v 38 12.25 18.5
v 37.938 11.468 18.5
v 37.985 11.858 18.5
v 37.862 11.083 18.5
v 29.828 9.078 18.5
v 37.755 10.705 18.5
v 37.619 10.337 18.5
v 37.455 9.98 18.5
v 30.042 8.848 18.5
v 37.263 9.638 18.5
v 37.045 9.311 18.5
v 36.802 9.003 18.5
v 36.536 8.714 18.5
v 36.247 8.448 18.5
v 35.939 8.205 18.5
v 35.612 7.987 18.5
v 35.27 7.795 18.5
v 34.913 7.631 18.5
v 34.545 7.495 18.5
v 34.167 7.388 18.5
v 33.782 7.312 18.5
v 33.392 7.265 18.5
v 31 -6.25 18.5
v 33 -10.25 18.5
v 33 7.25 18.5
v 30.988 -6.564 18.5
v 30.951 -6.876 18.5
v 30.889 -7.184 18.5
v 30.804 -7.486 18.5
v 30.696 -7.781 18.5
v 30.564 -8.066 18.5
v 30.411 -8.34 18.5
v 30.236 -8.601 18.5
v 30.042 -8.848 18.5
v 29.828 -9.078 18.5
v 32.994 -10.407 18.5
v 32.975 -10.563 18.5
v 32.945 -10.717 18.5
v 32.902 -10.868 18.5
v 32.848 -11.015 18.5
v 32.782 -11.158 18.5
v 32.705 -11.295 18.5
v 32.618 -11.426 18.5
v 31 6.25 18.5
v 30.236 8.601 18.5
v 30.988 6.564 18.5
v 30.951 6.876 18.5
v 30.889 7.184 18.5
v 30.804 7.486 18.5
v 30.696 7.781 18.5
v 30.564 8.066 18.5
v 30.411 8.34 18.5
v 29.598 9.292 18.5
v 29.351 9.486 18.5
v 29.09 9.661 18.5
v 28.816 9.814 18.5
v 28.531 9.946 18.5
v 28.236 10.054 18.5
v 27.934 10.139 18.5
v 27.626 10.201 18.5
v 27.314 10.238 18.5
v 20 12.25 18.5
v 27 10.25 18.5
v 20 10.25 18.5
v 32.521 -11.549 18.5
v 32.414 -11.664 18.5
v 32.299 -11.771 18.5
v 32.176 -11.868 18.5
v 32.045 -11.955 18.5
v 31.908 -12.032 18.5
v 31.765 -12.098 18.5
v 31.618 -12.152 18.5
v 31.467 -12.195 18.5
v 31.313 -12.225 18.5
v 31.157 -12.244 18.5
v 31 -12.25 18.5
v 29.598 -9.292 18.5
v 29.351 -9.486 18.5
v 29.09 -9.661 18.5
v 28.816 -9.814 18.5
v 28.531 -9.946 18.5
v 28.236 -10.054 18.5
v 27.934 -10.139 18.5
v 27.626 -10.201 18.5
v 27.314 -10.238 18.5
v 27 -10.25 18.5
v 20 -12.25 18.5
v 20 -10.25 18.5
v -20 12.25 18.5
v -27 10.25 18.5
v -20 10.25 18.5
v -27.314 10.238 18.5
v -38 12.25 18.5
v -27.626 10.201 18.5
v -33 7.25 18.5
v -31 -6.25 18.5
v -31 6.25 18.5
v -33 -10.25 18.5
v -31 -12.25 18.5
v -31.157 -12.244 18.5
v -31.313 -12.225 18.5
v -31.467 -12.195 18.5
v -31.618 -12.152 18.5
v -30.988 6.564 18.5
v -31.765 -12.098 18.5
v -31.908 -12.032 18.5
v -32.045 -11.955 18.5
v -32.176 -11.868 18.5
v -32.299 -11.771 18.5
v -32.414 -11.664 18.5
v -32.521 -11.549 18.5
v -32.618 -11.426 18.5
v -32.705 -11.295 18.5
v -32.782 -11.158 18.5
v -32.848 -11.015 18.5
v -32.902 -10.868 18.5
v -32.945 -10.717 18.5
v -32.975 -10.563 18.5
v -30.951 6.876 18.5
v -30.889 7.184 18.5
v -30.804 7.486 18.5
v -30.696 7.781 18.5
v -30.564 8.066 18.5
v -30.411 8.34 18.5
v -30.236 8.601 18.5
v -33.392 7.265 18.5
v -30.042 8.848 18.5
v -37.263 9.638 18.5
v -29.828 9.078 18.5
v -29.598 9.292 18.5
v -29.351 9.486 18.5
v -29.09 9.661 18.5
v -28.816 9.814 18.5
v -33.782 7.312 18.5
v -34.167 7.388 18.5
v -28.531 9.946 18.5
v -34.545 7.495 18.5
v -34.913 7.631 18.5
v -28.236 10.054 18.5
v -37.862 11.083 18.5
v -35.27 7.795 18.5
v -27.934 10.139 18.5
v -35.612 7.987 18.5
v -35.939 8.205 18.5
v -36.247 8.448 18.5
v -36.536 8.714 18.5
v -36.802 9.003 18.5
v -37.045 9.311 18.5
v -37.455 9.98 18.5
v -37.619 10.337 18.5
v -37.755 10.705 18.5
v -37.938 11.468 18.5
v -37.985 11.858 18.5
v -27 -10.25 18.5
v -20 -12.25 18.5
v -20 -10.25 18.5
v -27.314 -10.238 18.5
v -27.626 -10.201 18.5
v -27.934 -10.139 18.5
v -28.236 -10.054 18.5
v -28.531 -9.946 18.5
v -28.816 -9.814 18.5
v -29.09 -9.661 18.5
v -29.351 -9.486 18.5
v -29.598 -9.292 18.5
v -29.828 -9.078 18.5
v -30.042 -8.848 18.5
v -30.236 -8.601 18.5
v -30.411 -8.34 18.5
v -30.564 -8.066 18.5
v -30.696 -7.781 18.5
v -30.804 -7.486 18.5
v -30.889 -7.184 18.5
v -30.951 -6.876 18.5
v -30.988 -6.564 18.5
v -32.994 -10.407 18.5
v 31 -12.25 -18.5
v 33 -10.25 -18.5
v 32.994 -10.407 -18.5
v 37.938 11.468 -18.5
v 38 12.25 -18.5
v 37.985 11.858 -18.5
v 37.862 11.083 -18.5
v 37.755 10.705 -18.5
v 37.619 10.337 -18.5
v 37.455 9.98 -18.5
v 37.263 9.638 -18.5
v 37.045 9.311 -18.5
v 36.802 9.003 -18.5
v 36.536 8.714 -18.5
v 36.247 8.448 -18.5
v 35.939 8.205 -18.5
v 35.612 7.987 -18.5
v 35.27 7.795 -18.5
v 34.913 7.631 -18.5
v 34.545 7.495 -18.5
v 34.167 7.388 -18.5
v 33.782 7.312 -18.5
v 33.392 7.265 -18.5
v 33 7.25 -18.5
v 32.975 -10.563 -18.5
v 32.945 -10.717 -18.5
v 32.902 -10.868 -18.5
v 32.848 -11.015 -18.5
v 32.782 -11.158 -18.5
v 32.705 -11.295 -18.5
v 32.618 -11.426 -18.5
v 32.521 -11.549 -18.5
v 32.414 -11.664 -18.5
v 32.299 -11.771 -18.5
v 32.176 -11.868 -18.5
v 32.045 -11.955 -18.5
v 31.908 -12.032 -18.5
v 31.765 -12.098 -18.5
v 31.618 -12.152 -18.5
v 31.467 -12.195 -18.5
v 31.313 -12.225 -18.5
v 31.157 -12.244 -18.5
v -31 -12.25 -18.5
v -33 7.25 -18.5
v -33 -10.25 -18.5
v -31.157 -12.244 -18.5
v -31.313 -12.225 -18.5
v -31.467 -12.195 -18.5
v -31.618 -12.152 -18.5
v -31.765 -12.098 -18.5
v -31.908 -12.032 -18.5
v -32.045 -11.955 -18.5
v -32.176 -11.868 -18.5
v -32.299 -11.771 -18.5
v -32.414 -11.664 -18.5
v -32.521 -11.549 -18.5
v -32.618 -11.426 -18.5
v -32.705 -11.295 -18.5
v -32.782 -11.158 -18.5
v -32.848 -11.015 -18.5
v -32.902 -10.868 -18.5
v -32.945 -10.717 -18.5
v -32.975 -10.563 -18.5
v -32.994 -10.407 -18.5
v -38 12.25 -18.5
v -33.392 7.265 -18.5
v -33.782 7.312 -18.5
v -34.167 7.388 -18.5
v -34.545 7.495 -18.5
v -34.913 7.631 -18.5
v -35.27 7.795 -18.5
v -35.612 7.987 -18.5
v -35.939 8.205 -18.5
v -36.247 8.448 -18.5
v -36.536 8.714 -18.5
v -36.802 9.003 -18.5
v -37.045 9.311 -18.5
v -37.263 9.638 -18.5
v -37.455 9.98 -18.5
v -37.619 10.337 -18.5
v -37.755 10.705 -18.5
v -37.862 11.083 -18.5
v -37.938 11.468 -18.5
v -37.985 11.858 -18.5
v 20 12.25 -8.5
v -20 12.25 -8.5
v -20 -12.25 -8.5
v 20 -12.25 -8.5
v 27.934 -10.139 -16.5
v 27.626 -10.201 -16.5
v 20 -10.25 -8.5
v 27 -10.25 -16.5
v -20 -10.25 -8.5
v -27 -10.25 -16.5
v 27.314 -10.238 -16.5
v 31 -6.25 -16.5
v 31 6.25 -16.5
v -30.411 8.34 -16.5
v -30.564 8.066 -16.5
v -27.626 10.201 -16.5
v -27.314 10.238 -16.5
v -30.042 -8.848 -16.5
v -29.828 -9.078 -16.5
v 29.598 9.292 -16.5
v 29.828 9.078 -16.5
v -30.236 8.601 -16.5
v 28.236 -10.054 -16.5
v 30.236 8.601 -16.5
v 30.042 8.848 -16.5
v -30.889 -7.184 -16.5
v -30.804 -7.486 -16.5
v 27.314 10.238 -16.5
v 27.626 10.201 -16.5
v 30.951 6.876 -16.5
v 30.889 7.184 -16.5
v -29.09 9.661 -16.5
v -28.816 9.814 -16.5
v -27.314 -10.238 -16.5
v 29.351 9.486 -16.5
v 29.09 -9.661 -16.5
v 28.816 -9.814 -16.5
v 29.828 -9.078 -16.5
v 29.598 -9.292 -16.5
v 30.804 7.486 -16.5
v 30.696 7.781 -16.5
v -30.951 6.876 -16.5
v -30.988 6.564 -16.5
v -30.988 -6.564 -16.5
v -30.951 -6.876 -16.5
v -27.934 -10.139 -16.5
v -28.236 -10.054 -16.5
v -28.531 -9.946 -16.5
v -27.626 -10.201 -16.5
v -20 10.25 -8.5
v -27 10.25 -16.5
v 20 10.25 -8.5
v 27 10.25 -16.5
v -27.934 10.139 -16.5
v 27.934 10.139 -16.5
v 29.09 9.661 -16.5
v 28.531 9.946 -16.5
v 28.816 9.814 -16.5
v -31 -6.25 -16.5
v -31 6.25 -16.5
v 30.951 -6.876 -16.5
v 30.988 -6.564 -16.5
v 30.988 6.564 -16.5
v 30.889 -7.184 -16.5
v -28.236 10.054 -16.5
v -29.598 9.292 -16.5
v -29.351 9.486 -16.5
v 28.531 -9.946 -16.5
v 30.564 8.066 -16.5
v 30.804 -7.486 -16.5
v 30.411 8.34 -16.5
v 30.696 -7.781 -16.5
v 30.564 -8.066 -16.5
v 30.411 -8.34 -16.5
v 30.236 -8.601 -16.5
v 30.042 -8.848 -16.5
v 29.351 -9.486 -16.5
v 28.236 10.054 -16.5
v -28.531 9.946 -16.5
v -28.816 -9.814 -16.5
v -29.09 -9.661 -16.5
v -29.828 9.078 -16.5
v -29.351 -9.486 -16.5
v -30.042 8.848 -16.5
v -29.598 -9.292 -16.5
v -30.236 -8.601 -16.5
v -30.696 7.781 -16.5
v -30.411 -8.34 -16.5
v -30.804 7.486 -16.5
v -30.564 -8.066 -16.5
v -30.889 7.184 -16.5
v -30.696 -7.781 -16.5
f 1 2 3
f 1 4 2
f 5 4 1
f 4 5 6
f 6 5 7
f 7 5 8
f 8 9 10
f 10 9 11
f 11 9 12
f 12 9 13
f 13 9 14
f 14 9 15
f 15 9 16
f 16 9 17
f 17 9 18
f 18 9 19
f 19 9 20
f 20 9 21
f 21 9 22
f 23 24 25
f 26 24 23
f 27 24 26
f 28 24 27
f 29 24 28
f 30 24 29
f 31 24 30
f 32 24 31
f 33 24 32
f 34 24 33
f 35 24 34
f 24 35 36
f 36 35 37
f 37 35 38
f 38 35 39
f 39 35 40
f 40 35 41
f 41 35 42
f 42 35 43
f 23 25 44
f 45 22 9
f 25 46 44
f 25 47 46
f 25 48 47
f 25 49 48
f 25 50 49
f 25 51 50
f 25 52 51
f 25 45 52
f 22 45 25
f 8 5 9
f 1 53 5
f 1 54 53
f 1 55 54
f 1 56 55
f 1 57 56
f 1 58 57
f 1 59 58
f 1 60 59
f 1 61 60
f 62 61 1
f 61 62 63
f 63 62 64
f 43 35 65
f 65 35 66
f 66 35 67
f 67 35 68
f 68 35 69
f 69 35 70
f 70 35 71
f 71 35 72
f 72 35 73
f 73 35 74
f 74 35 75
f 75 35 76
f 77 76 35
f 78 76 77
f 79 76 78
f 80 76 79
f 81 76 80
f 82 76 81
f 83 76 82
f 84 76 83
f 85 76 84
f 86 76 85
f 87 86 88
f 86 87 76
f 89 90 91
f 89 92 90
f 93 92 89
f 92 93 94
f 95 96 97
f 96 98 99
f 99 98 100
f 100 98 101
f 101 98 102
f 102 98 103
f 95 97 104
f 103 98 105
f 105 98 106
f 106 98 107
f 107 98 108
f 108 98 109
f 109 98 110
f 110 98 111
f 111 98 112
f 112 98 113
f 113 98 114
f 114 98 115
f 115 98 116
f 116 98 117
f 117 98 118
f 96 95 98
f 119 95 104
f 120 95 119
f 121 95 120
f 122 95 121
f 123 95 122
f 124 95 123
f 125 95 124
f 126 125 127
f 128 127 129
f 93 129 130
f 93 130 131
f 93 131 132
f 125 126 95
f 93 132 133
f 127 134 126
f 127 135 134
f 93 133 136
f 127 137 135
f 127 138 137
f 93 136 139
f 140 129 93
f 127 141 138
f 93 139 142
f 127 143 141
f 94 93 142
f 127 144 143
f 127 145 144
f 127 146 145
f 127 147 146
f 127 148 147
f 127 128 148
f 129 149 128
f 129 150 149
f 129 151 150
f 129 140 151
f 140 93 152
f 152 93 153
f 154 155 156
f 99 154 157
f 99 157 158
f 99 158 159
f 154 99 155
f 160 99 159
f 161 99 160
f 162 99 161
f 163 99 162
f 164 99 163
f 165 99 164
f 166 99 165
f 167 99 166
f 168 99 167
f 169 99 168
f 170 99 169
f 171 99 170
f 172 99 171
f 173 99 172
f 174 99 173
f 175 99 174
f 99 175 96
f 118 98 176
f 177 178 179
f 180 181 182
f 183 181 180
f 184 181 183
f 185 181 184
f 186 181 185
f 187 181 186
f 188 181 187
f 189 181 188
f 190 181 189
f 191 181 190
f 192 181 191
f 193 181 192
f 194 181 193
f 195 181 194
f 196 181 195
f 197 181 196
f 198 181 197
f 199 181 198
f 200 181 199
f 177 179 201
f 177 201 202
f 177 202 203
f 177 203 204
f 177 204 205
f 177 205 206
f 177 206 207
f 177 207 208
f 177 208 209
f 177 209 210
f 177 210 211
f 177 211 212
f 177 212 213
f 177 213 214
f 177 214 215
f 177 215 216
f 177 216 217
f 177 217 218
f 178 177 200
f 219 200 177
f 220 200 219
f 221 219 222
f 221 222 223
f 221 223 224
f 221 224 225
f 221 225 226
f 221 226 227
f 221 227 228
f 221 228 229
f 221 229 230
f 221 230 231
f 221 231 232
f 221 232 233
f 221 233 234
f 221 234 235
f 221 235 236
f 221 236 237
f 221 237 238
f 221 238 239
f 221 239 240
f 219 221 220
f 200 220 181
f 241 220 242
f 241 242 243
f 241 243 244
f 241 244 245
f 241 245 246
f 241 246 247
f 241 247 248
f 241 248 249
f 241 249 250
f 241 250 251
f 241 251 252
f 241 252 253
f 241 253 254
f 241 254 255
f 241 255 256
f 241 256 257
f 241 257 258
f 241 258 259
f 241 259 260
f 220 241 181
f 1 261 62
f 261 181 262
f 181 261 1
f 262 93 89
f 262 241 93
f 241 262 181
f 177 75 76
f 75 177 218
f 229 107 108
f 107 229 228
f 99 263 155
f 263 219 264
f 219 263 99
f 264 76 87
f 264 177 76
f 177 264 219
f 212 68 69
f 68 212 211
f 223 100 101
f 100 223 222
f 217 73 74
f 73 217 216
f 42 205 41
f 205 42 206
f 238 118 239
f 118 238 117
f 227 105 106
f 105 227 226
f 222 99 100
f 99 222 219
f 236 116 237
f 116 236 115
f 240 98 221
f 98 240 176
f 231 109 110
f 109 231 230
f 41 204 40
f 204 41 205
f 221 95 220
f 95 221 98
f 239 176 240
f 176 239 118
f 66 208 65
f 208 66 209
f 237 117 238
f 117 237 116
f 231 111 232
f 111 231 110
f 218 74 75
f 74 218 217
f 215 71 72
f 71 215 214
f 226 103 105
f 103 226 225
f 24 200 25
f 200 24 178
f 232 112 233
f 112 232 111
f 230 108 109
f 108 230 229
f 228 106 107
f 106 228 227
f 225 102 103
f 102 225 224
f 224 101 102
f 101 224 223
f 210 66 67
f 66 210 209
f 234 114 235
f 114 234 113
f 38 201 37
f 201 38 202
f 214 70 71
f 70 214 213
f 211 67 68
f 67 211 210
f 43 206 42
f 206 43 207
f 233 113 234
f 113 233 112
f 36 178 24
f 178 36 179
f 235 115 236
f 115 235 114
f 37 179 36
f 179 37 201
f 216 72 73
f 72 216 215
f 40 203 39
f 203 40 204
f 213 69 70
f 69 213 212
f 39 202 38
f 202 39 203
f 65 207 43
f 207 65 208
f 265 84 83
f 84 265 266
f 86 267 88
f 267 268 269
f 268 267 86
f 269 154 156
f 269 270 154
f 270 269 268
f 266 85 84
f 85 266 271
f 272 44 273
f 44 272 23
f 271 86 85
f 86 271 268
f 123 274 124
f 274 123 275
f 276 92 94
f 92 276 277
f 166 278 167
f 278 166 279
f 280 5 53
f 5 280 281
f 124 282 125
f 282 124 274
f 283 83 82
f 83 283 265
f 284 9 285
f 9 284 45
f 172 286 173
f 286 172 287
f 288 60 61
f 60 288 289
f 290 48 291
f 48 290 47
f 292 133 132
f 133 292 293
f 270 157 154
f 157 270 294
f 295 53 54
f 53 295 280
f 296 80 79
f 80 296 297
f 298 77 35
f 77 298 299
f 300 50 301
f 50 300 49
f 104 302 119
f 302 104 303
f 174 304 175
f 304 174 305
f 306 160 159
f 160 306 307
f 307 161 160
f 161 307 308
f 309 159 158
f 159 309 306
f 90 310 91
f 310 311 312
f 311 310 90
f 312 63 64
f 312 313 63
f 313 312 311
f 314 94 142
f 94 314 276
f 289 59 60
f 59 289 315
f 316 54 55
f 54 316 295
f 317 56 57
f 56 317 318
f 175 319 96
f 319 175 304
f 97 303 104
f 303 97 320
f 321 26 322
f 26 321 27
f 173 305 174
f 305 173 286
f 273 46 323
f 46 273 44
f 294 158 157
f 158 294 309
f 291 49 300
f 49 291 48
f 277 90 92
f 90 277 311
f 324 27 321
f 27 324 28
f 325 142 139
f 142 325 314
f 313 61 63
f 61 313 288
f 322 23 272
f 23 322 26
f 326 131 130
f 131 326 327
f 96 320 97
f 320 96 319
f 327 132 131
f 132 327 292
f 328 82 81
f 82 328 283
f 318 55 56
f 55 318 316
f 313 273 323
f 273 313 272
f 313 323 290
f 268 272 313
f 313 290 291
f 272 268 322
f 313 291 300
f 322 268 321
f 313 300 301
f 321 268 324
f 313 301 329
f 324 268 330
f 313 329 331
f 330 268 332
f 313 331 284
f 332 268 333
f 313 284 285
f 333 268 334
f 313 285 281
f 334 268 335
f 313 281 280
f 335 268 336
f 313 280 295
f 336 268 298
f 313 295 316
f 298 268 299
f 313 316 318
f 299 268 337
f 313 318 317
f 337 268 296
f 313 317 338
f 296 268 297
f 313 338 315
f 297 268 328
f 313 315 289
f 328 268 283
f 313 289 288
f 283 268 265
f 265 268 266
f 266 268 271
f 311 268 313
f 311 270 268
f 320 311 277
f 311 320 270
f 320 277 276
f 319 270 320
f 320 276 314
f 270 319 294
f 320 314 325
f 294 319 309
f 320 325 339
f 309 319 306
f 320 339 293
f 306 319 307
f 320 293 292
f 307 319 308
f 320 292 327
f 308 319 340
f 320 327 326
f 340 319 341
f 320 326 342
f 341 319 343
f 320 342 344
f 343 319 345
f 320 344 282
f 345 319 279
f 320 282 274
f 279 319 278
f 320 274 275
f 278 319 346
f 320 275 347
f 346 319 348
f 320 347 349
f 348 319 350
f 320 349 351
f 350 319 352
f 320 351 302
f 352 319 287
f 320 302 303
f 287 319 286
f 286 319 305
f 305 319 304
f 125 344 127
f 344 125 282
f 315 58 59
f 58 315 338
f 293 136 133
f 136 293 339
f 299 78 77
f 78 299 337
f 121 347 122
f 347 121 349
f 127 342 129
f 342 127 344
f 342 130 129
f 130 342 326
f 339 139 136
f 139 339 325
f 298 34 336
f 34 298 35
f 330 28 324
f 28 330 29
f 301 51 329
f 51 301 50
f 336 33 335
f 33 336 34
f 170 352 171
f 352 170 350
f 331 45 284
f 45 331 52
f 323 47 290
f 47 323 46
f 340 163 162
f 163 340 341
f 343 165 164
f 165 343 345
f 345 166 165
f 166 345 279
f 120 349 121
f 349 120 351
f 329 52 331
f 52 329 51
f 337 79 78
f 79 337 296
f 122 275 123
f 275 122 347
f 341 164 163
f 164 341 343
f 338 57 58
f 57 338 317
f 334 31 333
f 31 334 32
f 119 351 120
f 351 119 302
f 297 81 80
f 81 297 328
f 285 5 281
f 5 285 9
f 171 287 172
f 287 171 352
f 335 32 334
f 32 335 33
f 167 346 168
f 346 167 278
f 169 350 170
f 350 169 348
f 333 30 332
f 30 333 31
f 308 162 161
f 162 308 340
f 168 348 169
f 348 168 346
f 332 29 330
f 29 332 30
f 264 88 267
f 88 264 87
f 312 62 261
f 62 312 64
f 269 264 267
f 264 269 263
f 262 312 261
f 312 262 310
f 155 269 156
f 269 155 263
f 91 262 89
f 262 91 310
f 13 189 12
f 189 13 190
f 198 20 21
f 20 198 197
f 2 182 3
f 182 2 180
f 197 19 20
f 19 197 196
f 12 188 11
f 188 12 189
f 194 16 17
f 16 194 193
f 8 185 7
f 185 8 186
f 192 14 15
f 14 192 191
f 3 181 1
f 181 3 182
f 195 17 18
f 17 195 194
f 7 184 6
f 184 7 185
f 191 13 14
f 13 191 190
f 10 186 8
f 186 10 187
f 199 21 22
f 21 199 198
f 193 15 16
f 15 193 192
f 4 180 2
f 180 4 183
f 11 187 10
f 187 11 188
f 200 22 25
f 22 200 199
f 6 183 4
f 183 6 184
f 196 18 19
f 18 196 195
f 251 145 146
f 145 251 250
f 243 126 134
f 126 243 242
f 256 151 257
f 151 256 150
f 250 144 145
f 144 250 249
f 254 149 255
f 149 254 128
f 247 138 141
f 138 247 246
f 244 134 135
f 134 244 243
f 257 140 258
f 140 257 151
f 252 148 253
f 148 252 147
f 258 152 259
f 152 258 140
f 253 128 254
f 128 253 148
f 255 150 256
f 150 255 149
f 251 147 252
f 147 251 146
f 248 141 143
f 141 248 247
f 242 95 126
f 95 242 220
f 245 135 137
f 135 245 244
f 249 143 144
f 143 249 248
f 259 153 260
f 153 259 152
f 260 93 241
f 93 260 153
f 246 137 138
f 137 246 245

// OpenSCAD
device_w = 62;
device_d = 20.5;
device_h = 37;

cutout_w = 40;
cutout_bottom = 10;

side_flap = 5;
box_t = 2;

$fn = 80;

difference() {
    group() {
        translate([0,(device_d+box_t)/2,0])
            cube([device_w+2*side_flap, box_t, device_h], center = true);
        
        translate([0,0,-device_h/2])
            linear_extrude(device_h)
                offset(r=box_t) offset(delta=-box_t)
                        square([device_w+2*box_t, device_d+2*box_t], center = true);
    }
    group() {
        translate([0,0,box_t-device_h/2])
            linear_extrude(device_h)
                offset(r=box_t*2) offset(delta=-box_t*2)
                        square([device_w, device_d], center = true);

        translate([0, 0, cutout_bottom])
            cube([cutout_w, 2*device_d, device_h], center = true);
    }
}

/* Left flap */
translate([side_flap+device_w/2-1.5*box_t,device_d/2+1*box_t,-device_h/2])
    rotate([0,0,270])
        rotate_extrude(angle=90)
            square([side_flap,device_h]);

/* Right flap */
translate([-side_flap-device_w/2+1.5*box_t,device_d/2+1*box_t,-device_h/2])
    rotate([0,0,180])
        rotate_extrude(angle=90)
            square([side_flap,device_h]);
